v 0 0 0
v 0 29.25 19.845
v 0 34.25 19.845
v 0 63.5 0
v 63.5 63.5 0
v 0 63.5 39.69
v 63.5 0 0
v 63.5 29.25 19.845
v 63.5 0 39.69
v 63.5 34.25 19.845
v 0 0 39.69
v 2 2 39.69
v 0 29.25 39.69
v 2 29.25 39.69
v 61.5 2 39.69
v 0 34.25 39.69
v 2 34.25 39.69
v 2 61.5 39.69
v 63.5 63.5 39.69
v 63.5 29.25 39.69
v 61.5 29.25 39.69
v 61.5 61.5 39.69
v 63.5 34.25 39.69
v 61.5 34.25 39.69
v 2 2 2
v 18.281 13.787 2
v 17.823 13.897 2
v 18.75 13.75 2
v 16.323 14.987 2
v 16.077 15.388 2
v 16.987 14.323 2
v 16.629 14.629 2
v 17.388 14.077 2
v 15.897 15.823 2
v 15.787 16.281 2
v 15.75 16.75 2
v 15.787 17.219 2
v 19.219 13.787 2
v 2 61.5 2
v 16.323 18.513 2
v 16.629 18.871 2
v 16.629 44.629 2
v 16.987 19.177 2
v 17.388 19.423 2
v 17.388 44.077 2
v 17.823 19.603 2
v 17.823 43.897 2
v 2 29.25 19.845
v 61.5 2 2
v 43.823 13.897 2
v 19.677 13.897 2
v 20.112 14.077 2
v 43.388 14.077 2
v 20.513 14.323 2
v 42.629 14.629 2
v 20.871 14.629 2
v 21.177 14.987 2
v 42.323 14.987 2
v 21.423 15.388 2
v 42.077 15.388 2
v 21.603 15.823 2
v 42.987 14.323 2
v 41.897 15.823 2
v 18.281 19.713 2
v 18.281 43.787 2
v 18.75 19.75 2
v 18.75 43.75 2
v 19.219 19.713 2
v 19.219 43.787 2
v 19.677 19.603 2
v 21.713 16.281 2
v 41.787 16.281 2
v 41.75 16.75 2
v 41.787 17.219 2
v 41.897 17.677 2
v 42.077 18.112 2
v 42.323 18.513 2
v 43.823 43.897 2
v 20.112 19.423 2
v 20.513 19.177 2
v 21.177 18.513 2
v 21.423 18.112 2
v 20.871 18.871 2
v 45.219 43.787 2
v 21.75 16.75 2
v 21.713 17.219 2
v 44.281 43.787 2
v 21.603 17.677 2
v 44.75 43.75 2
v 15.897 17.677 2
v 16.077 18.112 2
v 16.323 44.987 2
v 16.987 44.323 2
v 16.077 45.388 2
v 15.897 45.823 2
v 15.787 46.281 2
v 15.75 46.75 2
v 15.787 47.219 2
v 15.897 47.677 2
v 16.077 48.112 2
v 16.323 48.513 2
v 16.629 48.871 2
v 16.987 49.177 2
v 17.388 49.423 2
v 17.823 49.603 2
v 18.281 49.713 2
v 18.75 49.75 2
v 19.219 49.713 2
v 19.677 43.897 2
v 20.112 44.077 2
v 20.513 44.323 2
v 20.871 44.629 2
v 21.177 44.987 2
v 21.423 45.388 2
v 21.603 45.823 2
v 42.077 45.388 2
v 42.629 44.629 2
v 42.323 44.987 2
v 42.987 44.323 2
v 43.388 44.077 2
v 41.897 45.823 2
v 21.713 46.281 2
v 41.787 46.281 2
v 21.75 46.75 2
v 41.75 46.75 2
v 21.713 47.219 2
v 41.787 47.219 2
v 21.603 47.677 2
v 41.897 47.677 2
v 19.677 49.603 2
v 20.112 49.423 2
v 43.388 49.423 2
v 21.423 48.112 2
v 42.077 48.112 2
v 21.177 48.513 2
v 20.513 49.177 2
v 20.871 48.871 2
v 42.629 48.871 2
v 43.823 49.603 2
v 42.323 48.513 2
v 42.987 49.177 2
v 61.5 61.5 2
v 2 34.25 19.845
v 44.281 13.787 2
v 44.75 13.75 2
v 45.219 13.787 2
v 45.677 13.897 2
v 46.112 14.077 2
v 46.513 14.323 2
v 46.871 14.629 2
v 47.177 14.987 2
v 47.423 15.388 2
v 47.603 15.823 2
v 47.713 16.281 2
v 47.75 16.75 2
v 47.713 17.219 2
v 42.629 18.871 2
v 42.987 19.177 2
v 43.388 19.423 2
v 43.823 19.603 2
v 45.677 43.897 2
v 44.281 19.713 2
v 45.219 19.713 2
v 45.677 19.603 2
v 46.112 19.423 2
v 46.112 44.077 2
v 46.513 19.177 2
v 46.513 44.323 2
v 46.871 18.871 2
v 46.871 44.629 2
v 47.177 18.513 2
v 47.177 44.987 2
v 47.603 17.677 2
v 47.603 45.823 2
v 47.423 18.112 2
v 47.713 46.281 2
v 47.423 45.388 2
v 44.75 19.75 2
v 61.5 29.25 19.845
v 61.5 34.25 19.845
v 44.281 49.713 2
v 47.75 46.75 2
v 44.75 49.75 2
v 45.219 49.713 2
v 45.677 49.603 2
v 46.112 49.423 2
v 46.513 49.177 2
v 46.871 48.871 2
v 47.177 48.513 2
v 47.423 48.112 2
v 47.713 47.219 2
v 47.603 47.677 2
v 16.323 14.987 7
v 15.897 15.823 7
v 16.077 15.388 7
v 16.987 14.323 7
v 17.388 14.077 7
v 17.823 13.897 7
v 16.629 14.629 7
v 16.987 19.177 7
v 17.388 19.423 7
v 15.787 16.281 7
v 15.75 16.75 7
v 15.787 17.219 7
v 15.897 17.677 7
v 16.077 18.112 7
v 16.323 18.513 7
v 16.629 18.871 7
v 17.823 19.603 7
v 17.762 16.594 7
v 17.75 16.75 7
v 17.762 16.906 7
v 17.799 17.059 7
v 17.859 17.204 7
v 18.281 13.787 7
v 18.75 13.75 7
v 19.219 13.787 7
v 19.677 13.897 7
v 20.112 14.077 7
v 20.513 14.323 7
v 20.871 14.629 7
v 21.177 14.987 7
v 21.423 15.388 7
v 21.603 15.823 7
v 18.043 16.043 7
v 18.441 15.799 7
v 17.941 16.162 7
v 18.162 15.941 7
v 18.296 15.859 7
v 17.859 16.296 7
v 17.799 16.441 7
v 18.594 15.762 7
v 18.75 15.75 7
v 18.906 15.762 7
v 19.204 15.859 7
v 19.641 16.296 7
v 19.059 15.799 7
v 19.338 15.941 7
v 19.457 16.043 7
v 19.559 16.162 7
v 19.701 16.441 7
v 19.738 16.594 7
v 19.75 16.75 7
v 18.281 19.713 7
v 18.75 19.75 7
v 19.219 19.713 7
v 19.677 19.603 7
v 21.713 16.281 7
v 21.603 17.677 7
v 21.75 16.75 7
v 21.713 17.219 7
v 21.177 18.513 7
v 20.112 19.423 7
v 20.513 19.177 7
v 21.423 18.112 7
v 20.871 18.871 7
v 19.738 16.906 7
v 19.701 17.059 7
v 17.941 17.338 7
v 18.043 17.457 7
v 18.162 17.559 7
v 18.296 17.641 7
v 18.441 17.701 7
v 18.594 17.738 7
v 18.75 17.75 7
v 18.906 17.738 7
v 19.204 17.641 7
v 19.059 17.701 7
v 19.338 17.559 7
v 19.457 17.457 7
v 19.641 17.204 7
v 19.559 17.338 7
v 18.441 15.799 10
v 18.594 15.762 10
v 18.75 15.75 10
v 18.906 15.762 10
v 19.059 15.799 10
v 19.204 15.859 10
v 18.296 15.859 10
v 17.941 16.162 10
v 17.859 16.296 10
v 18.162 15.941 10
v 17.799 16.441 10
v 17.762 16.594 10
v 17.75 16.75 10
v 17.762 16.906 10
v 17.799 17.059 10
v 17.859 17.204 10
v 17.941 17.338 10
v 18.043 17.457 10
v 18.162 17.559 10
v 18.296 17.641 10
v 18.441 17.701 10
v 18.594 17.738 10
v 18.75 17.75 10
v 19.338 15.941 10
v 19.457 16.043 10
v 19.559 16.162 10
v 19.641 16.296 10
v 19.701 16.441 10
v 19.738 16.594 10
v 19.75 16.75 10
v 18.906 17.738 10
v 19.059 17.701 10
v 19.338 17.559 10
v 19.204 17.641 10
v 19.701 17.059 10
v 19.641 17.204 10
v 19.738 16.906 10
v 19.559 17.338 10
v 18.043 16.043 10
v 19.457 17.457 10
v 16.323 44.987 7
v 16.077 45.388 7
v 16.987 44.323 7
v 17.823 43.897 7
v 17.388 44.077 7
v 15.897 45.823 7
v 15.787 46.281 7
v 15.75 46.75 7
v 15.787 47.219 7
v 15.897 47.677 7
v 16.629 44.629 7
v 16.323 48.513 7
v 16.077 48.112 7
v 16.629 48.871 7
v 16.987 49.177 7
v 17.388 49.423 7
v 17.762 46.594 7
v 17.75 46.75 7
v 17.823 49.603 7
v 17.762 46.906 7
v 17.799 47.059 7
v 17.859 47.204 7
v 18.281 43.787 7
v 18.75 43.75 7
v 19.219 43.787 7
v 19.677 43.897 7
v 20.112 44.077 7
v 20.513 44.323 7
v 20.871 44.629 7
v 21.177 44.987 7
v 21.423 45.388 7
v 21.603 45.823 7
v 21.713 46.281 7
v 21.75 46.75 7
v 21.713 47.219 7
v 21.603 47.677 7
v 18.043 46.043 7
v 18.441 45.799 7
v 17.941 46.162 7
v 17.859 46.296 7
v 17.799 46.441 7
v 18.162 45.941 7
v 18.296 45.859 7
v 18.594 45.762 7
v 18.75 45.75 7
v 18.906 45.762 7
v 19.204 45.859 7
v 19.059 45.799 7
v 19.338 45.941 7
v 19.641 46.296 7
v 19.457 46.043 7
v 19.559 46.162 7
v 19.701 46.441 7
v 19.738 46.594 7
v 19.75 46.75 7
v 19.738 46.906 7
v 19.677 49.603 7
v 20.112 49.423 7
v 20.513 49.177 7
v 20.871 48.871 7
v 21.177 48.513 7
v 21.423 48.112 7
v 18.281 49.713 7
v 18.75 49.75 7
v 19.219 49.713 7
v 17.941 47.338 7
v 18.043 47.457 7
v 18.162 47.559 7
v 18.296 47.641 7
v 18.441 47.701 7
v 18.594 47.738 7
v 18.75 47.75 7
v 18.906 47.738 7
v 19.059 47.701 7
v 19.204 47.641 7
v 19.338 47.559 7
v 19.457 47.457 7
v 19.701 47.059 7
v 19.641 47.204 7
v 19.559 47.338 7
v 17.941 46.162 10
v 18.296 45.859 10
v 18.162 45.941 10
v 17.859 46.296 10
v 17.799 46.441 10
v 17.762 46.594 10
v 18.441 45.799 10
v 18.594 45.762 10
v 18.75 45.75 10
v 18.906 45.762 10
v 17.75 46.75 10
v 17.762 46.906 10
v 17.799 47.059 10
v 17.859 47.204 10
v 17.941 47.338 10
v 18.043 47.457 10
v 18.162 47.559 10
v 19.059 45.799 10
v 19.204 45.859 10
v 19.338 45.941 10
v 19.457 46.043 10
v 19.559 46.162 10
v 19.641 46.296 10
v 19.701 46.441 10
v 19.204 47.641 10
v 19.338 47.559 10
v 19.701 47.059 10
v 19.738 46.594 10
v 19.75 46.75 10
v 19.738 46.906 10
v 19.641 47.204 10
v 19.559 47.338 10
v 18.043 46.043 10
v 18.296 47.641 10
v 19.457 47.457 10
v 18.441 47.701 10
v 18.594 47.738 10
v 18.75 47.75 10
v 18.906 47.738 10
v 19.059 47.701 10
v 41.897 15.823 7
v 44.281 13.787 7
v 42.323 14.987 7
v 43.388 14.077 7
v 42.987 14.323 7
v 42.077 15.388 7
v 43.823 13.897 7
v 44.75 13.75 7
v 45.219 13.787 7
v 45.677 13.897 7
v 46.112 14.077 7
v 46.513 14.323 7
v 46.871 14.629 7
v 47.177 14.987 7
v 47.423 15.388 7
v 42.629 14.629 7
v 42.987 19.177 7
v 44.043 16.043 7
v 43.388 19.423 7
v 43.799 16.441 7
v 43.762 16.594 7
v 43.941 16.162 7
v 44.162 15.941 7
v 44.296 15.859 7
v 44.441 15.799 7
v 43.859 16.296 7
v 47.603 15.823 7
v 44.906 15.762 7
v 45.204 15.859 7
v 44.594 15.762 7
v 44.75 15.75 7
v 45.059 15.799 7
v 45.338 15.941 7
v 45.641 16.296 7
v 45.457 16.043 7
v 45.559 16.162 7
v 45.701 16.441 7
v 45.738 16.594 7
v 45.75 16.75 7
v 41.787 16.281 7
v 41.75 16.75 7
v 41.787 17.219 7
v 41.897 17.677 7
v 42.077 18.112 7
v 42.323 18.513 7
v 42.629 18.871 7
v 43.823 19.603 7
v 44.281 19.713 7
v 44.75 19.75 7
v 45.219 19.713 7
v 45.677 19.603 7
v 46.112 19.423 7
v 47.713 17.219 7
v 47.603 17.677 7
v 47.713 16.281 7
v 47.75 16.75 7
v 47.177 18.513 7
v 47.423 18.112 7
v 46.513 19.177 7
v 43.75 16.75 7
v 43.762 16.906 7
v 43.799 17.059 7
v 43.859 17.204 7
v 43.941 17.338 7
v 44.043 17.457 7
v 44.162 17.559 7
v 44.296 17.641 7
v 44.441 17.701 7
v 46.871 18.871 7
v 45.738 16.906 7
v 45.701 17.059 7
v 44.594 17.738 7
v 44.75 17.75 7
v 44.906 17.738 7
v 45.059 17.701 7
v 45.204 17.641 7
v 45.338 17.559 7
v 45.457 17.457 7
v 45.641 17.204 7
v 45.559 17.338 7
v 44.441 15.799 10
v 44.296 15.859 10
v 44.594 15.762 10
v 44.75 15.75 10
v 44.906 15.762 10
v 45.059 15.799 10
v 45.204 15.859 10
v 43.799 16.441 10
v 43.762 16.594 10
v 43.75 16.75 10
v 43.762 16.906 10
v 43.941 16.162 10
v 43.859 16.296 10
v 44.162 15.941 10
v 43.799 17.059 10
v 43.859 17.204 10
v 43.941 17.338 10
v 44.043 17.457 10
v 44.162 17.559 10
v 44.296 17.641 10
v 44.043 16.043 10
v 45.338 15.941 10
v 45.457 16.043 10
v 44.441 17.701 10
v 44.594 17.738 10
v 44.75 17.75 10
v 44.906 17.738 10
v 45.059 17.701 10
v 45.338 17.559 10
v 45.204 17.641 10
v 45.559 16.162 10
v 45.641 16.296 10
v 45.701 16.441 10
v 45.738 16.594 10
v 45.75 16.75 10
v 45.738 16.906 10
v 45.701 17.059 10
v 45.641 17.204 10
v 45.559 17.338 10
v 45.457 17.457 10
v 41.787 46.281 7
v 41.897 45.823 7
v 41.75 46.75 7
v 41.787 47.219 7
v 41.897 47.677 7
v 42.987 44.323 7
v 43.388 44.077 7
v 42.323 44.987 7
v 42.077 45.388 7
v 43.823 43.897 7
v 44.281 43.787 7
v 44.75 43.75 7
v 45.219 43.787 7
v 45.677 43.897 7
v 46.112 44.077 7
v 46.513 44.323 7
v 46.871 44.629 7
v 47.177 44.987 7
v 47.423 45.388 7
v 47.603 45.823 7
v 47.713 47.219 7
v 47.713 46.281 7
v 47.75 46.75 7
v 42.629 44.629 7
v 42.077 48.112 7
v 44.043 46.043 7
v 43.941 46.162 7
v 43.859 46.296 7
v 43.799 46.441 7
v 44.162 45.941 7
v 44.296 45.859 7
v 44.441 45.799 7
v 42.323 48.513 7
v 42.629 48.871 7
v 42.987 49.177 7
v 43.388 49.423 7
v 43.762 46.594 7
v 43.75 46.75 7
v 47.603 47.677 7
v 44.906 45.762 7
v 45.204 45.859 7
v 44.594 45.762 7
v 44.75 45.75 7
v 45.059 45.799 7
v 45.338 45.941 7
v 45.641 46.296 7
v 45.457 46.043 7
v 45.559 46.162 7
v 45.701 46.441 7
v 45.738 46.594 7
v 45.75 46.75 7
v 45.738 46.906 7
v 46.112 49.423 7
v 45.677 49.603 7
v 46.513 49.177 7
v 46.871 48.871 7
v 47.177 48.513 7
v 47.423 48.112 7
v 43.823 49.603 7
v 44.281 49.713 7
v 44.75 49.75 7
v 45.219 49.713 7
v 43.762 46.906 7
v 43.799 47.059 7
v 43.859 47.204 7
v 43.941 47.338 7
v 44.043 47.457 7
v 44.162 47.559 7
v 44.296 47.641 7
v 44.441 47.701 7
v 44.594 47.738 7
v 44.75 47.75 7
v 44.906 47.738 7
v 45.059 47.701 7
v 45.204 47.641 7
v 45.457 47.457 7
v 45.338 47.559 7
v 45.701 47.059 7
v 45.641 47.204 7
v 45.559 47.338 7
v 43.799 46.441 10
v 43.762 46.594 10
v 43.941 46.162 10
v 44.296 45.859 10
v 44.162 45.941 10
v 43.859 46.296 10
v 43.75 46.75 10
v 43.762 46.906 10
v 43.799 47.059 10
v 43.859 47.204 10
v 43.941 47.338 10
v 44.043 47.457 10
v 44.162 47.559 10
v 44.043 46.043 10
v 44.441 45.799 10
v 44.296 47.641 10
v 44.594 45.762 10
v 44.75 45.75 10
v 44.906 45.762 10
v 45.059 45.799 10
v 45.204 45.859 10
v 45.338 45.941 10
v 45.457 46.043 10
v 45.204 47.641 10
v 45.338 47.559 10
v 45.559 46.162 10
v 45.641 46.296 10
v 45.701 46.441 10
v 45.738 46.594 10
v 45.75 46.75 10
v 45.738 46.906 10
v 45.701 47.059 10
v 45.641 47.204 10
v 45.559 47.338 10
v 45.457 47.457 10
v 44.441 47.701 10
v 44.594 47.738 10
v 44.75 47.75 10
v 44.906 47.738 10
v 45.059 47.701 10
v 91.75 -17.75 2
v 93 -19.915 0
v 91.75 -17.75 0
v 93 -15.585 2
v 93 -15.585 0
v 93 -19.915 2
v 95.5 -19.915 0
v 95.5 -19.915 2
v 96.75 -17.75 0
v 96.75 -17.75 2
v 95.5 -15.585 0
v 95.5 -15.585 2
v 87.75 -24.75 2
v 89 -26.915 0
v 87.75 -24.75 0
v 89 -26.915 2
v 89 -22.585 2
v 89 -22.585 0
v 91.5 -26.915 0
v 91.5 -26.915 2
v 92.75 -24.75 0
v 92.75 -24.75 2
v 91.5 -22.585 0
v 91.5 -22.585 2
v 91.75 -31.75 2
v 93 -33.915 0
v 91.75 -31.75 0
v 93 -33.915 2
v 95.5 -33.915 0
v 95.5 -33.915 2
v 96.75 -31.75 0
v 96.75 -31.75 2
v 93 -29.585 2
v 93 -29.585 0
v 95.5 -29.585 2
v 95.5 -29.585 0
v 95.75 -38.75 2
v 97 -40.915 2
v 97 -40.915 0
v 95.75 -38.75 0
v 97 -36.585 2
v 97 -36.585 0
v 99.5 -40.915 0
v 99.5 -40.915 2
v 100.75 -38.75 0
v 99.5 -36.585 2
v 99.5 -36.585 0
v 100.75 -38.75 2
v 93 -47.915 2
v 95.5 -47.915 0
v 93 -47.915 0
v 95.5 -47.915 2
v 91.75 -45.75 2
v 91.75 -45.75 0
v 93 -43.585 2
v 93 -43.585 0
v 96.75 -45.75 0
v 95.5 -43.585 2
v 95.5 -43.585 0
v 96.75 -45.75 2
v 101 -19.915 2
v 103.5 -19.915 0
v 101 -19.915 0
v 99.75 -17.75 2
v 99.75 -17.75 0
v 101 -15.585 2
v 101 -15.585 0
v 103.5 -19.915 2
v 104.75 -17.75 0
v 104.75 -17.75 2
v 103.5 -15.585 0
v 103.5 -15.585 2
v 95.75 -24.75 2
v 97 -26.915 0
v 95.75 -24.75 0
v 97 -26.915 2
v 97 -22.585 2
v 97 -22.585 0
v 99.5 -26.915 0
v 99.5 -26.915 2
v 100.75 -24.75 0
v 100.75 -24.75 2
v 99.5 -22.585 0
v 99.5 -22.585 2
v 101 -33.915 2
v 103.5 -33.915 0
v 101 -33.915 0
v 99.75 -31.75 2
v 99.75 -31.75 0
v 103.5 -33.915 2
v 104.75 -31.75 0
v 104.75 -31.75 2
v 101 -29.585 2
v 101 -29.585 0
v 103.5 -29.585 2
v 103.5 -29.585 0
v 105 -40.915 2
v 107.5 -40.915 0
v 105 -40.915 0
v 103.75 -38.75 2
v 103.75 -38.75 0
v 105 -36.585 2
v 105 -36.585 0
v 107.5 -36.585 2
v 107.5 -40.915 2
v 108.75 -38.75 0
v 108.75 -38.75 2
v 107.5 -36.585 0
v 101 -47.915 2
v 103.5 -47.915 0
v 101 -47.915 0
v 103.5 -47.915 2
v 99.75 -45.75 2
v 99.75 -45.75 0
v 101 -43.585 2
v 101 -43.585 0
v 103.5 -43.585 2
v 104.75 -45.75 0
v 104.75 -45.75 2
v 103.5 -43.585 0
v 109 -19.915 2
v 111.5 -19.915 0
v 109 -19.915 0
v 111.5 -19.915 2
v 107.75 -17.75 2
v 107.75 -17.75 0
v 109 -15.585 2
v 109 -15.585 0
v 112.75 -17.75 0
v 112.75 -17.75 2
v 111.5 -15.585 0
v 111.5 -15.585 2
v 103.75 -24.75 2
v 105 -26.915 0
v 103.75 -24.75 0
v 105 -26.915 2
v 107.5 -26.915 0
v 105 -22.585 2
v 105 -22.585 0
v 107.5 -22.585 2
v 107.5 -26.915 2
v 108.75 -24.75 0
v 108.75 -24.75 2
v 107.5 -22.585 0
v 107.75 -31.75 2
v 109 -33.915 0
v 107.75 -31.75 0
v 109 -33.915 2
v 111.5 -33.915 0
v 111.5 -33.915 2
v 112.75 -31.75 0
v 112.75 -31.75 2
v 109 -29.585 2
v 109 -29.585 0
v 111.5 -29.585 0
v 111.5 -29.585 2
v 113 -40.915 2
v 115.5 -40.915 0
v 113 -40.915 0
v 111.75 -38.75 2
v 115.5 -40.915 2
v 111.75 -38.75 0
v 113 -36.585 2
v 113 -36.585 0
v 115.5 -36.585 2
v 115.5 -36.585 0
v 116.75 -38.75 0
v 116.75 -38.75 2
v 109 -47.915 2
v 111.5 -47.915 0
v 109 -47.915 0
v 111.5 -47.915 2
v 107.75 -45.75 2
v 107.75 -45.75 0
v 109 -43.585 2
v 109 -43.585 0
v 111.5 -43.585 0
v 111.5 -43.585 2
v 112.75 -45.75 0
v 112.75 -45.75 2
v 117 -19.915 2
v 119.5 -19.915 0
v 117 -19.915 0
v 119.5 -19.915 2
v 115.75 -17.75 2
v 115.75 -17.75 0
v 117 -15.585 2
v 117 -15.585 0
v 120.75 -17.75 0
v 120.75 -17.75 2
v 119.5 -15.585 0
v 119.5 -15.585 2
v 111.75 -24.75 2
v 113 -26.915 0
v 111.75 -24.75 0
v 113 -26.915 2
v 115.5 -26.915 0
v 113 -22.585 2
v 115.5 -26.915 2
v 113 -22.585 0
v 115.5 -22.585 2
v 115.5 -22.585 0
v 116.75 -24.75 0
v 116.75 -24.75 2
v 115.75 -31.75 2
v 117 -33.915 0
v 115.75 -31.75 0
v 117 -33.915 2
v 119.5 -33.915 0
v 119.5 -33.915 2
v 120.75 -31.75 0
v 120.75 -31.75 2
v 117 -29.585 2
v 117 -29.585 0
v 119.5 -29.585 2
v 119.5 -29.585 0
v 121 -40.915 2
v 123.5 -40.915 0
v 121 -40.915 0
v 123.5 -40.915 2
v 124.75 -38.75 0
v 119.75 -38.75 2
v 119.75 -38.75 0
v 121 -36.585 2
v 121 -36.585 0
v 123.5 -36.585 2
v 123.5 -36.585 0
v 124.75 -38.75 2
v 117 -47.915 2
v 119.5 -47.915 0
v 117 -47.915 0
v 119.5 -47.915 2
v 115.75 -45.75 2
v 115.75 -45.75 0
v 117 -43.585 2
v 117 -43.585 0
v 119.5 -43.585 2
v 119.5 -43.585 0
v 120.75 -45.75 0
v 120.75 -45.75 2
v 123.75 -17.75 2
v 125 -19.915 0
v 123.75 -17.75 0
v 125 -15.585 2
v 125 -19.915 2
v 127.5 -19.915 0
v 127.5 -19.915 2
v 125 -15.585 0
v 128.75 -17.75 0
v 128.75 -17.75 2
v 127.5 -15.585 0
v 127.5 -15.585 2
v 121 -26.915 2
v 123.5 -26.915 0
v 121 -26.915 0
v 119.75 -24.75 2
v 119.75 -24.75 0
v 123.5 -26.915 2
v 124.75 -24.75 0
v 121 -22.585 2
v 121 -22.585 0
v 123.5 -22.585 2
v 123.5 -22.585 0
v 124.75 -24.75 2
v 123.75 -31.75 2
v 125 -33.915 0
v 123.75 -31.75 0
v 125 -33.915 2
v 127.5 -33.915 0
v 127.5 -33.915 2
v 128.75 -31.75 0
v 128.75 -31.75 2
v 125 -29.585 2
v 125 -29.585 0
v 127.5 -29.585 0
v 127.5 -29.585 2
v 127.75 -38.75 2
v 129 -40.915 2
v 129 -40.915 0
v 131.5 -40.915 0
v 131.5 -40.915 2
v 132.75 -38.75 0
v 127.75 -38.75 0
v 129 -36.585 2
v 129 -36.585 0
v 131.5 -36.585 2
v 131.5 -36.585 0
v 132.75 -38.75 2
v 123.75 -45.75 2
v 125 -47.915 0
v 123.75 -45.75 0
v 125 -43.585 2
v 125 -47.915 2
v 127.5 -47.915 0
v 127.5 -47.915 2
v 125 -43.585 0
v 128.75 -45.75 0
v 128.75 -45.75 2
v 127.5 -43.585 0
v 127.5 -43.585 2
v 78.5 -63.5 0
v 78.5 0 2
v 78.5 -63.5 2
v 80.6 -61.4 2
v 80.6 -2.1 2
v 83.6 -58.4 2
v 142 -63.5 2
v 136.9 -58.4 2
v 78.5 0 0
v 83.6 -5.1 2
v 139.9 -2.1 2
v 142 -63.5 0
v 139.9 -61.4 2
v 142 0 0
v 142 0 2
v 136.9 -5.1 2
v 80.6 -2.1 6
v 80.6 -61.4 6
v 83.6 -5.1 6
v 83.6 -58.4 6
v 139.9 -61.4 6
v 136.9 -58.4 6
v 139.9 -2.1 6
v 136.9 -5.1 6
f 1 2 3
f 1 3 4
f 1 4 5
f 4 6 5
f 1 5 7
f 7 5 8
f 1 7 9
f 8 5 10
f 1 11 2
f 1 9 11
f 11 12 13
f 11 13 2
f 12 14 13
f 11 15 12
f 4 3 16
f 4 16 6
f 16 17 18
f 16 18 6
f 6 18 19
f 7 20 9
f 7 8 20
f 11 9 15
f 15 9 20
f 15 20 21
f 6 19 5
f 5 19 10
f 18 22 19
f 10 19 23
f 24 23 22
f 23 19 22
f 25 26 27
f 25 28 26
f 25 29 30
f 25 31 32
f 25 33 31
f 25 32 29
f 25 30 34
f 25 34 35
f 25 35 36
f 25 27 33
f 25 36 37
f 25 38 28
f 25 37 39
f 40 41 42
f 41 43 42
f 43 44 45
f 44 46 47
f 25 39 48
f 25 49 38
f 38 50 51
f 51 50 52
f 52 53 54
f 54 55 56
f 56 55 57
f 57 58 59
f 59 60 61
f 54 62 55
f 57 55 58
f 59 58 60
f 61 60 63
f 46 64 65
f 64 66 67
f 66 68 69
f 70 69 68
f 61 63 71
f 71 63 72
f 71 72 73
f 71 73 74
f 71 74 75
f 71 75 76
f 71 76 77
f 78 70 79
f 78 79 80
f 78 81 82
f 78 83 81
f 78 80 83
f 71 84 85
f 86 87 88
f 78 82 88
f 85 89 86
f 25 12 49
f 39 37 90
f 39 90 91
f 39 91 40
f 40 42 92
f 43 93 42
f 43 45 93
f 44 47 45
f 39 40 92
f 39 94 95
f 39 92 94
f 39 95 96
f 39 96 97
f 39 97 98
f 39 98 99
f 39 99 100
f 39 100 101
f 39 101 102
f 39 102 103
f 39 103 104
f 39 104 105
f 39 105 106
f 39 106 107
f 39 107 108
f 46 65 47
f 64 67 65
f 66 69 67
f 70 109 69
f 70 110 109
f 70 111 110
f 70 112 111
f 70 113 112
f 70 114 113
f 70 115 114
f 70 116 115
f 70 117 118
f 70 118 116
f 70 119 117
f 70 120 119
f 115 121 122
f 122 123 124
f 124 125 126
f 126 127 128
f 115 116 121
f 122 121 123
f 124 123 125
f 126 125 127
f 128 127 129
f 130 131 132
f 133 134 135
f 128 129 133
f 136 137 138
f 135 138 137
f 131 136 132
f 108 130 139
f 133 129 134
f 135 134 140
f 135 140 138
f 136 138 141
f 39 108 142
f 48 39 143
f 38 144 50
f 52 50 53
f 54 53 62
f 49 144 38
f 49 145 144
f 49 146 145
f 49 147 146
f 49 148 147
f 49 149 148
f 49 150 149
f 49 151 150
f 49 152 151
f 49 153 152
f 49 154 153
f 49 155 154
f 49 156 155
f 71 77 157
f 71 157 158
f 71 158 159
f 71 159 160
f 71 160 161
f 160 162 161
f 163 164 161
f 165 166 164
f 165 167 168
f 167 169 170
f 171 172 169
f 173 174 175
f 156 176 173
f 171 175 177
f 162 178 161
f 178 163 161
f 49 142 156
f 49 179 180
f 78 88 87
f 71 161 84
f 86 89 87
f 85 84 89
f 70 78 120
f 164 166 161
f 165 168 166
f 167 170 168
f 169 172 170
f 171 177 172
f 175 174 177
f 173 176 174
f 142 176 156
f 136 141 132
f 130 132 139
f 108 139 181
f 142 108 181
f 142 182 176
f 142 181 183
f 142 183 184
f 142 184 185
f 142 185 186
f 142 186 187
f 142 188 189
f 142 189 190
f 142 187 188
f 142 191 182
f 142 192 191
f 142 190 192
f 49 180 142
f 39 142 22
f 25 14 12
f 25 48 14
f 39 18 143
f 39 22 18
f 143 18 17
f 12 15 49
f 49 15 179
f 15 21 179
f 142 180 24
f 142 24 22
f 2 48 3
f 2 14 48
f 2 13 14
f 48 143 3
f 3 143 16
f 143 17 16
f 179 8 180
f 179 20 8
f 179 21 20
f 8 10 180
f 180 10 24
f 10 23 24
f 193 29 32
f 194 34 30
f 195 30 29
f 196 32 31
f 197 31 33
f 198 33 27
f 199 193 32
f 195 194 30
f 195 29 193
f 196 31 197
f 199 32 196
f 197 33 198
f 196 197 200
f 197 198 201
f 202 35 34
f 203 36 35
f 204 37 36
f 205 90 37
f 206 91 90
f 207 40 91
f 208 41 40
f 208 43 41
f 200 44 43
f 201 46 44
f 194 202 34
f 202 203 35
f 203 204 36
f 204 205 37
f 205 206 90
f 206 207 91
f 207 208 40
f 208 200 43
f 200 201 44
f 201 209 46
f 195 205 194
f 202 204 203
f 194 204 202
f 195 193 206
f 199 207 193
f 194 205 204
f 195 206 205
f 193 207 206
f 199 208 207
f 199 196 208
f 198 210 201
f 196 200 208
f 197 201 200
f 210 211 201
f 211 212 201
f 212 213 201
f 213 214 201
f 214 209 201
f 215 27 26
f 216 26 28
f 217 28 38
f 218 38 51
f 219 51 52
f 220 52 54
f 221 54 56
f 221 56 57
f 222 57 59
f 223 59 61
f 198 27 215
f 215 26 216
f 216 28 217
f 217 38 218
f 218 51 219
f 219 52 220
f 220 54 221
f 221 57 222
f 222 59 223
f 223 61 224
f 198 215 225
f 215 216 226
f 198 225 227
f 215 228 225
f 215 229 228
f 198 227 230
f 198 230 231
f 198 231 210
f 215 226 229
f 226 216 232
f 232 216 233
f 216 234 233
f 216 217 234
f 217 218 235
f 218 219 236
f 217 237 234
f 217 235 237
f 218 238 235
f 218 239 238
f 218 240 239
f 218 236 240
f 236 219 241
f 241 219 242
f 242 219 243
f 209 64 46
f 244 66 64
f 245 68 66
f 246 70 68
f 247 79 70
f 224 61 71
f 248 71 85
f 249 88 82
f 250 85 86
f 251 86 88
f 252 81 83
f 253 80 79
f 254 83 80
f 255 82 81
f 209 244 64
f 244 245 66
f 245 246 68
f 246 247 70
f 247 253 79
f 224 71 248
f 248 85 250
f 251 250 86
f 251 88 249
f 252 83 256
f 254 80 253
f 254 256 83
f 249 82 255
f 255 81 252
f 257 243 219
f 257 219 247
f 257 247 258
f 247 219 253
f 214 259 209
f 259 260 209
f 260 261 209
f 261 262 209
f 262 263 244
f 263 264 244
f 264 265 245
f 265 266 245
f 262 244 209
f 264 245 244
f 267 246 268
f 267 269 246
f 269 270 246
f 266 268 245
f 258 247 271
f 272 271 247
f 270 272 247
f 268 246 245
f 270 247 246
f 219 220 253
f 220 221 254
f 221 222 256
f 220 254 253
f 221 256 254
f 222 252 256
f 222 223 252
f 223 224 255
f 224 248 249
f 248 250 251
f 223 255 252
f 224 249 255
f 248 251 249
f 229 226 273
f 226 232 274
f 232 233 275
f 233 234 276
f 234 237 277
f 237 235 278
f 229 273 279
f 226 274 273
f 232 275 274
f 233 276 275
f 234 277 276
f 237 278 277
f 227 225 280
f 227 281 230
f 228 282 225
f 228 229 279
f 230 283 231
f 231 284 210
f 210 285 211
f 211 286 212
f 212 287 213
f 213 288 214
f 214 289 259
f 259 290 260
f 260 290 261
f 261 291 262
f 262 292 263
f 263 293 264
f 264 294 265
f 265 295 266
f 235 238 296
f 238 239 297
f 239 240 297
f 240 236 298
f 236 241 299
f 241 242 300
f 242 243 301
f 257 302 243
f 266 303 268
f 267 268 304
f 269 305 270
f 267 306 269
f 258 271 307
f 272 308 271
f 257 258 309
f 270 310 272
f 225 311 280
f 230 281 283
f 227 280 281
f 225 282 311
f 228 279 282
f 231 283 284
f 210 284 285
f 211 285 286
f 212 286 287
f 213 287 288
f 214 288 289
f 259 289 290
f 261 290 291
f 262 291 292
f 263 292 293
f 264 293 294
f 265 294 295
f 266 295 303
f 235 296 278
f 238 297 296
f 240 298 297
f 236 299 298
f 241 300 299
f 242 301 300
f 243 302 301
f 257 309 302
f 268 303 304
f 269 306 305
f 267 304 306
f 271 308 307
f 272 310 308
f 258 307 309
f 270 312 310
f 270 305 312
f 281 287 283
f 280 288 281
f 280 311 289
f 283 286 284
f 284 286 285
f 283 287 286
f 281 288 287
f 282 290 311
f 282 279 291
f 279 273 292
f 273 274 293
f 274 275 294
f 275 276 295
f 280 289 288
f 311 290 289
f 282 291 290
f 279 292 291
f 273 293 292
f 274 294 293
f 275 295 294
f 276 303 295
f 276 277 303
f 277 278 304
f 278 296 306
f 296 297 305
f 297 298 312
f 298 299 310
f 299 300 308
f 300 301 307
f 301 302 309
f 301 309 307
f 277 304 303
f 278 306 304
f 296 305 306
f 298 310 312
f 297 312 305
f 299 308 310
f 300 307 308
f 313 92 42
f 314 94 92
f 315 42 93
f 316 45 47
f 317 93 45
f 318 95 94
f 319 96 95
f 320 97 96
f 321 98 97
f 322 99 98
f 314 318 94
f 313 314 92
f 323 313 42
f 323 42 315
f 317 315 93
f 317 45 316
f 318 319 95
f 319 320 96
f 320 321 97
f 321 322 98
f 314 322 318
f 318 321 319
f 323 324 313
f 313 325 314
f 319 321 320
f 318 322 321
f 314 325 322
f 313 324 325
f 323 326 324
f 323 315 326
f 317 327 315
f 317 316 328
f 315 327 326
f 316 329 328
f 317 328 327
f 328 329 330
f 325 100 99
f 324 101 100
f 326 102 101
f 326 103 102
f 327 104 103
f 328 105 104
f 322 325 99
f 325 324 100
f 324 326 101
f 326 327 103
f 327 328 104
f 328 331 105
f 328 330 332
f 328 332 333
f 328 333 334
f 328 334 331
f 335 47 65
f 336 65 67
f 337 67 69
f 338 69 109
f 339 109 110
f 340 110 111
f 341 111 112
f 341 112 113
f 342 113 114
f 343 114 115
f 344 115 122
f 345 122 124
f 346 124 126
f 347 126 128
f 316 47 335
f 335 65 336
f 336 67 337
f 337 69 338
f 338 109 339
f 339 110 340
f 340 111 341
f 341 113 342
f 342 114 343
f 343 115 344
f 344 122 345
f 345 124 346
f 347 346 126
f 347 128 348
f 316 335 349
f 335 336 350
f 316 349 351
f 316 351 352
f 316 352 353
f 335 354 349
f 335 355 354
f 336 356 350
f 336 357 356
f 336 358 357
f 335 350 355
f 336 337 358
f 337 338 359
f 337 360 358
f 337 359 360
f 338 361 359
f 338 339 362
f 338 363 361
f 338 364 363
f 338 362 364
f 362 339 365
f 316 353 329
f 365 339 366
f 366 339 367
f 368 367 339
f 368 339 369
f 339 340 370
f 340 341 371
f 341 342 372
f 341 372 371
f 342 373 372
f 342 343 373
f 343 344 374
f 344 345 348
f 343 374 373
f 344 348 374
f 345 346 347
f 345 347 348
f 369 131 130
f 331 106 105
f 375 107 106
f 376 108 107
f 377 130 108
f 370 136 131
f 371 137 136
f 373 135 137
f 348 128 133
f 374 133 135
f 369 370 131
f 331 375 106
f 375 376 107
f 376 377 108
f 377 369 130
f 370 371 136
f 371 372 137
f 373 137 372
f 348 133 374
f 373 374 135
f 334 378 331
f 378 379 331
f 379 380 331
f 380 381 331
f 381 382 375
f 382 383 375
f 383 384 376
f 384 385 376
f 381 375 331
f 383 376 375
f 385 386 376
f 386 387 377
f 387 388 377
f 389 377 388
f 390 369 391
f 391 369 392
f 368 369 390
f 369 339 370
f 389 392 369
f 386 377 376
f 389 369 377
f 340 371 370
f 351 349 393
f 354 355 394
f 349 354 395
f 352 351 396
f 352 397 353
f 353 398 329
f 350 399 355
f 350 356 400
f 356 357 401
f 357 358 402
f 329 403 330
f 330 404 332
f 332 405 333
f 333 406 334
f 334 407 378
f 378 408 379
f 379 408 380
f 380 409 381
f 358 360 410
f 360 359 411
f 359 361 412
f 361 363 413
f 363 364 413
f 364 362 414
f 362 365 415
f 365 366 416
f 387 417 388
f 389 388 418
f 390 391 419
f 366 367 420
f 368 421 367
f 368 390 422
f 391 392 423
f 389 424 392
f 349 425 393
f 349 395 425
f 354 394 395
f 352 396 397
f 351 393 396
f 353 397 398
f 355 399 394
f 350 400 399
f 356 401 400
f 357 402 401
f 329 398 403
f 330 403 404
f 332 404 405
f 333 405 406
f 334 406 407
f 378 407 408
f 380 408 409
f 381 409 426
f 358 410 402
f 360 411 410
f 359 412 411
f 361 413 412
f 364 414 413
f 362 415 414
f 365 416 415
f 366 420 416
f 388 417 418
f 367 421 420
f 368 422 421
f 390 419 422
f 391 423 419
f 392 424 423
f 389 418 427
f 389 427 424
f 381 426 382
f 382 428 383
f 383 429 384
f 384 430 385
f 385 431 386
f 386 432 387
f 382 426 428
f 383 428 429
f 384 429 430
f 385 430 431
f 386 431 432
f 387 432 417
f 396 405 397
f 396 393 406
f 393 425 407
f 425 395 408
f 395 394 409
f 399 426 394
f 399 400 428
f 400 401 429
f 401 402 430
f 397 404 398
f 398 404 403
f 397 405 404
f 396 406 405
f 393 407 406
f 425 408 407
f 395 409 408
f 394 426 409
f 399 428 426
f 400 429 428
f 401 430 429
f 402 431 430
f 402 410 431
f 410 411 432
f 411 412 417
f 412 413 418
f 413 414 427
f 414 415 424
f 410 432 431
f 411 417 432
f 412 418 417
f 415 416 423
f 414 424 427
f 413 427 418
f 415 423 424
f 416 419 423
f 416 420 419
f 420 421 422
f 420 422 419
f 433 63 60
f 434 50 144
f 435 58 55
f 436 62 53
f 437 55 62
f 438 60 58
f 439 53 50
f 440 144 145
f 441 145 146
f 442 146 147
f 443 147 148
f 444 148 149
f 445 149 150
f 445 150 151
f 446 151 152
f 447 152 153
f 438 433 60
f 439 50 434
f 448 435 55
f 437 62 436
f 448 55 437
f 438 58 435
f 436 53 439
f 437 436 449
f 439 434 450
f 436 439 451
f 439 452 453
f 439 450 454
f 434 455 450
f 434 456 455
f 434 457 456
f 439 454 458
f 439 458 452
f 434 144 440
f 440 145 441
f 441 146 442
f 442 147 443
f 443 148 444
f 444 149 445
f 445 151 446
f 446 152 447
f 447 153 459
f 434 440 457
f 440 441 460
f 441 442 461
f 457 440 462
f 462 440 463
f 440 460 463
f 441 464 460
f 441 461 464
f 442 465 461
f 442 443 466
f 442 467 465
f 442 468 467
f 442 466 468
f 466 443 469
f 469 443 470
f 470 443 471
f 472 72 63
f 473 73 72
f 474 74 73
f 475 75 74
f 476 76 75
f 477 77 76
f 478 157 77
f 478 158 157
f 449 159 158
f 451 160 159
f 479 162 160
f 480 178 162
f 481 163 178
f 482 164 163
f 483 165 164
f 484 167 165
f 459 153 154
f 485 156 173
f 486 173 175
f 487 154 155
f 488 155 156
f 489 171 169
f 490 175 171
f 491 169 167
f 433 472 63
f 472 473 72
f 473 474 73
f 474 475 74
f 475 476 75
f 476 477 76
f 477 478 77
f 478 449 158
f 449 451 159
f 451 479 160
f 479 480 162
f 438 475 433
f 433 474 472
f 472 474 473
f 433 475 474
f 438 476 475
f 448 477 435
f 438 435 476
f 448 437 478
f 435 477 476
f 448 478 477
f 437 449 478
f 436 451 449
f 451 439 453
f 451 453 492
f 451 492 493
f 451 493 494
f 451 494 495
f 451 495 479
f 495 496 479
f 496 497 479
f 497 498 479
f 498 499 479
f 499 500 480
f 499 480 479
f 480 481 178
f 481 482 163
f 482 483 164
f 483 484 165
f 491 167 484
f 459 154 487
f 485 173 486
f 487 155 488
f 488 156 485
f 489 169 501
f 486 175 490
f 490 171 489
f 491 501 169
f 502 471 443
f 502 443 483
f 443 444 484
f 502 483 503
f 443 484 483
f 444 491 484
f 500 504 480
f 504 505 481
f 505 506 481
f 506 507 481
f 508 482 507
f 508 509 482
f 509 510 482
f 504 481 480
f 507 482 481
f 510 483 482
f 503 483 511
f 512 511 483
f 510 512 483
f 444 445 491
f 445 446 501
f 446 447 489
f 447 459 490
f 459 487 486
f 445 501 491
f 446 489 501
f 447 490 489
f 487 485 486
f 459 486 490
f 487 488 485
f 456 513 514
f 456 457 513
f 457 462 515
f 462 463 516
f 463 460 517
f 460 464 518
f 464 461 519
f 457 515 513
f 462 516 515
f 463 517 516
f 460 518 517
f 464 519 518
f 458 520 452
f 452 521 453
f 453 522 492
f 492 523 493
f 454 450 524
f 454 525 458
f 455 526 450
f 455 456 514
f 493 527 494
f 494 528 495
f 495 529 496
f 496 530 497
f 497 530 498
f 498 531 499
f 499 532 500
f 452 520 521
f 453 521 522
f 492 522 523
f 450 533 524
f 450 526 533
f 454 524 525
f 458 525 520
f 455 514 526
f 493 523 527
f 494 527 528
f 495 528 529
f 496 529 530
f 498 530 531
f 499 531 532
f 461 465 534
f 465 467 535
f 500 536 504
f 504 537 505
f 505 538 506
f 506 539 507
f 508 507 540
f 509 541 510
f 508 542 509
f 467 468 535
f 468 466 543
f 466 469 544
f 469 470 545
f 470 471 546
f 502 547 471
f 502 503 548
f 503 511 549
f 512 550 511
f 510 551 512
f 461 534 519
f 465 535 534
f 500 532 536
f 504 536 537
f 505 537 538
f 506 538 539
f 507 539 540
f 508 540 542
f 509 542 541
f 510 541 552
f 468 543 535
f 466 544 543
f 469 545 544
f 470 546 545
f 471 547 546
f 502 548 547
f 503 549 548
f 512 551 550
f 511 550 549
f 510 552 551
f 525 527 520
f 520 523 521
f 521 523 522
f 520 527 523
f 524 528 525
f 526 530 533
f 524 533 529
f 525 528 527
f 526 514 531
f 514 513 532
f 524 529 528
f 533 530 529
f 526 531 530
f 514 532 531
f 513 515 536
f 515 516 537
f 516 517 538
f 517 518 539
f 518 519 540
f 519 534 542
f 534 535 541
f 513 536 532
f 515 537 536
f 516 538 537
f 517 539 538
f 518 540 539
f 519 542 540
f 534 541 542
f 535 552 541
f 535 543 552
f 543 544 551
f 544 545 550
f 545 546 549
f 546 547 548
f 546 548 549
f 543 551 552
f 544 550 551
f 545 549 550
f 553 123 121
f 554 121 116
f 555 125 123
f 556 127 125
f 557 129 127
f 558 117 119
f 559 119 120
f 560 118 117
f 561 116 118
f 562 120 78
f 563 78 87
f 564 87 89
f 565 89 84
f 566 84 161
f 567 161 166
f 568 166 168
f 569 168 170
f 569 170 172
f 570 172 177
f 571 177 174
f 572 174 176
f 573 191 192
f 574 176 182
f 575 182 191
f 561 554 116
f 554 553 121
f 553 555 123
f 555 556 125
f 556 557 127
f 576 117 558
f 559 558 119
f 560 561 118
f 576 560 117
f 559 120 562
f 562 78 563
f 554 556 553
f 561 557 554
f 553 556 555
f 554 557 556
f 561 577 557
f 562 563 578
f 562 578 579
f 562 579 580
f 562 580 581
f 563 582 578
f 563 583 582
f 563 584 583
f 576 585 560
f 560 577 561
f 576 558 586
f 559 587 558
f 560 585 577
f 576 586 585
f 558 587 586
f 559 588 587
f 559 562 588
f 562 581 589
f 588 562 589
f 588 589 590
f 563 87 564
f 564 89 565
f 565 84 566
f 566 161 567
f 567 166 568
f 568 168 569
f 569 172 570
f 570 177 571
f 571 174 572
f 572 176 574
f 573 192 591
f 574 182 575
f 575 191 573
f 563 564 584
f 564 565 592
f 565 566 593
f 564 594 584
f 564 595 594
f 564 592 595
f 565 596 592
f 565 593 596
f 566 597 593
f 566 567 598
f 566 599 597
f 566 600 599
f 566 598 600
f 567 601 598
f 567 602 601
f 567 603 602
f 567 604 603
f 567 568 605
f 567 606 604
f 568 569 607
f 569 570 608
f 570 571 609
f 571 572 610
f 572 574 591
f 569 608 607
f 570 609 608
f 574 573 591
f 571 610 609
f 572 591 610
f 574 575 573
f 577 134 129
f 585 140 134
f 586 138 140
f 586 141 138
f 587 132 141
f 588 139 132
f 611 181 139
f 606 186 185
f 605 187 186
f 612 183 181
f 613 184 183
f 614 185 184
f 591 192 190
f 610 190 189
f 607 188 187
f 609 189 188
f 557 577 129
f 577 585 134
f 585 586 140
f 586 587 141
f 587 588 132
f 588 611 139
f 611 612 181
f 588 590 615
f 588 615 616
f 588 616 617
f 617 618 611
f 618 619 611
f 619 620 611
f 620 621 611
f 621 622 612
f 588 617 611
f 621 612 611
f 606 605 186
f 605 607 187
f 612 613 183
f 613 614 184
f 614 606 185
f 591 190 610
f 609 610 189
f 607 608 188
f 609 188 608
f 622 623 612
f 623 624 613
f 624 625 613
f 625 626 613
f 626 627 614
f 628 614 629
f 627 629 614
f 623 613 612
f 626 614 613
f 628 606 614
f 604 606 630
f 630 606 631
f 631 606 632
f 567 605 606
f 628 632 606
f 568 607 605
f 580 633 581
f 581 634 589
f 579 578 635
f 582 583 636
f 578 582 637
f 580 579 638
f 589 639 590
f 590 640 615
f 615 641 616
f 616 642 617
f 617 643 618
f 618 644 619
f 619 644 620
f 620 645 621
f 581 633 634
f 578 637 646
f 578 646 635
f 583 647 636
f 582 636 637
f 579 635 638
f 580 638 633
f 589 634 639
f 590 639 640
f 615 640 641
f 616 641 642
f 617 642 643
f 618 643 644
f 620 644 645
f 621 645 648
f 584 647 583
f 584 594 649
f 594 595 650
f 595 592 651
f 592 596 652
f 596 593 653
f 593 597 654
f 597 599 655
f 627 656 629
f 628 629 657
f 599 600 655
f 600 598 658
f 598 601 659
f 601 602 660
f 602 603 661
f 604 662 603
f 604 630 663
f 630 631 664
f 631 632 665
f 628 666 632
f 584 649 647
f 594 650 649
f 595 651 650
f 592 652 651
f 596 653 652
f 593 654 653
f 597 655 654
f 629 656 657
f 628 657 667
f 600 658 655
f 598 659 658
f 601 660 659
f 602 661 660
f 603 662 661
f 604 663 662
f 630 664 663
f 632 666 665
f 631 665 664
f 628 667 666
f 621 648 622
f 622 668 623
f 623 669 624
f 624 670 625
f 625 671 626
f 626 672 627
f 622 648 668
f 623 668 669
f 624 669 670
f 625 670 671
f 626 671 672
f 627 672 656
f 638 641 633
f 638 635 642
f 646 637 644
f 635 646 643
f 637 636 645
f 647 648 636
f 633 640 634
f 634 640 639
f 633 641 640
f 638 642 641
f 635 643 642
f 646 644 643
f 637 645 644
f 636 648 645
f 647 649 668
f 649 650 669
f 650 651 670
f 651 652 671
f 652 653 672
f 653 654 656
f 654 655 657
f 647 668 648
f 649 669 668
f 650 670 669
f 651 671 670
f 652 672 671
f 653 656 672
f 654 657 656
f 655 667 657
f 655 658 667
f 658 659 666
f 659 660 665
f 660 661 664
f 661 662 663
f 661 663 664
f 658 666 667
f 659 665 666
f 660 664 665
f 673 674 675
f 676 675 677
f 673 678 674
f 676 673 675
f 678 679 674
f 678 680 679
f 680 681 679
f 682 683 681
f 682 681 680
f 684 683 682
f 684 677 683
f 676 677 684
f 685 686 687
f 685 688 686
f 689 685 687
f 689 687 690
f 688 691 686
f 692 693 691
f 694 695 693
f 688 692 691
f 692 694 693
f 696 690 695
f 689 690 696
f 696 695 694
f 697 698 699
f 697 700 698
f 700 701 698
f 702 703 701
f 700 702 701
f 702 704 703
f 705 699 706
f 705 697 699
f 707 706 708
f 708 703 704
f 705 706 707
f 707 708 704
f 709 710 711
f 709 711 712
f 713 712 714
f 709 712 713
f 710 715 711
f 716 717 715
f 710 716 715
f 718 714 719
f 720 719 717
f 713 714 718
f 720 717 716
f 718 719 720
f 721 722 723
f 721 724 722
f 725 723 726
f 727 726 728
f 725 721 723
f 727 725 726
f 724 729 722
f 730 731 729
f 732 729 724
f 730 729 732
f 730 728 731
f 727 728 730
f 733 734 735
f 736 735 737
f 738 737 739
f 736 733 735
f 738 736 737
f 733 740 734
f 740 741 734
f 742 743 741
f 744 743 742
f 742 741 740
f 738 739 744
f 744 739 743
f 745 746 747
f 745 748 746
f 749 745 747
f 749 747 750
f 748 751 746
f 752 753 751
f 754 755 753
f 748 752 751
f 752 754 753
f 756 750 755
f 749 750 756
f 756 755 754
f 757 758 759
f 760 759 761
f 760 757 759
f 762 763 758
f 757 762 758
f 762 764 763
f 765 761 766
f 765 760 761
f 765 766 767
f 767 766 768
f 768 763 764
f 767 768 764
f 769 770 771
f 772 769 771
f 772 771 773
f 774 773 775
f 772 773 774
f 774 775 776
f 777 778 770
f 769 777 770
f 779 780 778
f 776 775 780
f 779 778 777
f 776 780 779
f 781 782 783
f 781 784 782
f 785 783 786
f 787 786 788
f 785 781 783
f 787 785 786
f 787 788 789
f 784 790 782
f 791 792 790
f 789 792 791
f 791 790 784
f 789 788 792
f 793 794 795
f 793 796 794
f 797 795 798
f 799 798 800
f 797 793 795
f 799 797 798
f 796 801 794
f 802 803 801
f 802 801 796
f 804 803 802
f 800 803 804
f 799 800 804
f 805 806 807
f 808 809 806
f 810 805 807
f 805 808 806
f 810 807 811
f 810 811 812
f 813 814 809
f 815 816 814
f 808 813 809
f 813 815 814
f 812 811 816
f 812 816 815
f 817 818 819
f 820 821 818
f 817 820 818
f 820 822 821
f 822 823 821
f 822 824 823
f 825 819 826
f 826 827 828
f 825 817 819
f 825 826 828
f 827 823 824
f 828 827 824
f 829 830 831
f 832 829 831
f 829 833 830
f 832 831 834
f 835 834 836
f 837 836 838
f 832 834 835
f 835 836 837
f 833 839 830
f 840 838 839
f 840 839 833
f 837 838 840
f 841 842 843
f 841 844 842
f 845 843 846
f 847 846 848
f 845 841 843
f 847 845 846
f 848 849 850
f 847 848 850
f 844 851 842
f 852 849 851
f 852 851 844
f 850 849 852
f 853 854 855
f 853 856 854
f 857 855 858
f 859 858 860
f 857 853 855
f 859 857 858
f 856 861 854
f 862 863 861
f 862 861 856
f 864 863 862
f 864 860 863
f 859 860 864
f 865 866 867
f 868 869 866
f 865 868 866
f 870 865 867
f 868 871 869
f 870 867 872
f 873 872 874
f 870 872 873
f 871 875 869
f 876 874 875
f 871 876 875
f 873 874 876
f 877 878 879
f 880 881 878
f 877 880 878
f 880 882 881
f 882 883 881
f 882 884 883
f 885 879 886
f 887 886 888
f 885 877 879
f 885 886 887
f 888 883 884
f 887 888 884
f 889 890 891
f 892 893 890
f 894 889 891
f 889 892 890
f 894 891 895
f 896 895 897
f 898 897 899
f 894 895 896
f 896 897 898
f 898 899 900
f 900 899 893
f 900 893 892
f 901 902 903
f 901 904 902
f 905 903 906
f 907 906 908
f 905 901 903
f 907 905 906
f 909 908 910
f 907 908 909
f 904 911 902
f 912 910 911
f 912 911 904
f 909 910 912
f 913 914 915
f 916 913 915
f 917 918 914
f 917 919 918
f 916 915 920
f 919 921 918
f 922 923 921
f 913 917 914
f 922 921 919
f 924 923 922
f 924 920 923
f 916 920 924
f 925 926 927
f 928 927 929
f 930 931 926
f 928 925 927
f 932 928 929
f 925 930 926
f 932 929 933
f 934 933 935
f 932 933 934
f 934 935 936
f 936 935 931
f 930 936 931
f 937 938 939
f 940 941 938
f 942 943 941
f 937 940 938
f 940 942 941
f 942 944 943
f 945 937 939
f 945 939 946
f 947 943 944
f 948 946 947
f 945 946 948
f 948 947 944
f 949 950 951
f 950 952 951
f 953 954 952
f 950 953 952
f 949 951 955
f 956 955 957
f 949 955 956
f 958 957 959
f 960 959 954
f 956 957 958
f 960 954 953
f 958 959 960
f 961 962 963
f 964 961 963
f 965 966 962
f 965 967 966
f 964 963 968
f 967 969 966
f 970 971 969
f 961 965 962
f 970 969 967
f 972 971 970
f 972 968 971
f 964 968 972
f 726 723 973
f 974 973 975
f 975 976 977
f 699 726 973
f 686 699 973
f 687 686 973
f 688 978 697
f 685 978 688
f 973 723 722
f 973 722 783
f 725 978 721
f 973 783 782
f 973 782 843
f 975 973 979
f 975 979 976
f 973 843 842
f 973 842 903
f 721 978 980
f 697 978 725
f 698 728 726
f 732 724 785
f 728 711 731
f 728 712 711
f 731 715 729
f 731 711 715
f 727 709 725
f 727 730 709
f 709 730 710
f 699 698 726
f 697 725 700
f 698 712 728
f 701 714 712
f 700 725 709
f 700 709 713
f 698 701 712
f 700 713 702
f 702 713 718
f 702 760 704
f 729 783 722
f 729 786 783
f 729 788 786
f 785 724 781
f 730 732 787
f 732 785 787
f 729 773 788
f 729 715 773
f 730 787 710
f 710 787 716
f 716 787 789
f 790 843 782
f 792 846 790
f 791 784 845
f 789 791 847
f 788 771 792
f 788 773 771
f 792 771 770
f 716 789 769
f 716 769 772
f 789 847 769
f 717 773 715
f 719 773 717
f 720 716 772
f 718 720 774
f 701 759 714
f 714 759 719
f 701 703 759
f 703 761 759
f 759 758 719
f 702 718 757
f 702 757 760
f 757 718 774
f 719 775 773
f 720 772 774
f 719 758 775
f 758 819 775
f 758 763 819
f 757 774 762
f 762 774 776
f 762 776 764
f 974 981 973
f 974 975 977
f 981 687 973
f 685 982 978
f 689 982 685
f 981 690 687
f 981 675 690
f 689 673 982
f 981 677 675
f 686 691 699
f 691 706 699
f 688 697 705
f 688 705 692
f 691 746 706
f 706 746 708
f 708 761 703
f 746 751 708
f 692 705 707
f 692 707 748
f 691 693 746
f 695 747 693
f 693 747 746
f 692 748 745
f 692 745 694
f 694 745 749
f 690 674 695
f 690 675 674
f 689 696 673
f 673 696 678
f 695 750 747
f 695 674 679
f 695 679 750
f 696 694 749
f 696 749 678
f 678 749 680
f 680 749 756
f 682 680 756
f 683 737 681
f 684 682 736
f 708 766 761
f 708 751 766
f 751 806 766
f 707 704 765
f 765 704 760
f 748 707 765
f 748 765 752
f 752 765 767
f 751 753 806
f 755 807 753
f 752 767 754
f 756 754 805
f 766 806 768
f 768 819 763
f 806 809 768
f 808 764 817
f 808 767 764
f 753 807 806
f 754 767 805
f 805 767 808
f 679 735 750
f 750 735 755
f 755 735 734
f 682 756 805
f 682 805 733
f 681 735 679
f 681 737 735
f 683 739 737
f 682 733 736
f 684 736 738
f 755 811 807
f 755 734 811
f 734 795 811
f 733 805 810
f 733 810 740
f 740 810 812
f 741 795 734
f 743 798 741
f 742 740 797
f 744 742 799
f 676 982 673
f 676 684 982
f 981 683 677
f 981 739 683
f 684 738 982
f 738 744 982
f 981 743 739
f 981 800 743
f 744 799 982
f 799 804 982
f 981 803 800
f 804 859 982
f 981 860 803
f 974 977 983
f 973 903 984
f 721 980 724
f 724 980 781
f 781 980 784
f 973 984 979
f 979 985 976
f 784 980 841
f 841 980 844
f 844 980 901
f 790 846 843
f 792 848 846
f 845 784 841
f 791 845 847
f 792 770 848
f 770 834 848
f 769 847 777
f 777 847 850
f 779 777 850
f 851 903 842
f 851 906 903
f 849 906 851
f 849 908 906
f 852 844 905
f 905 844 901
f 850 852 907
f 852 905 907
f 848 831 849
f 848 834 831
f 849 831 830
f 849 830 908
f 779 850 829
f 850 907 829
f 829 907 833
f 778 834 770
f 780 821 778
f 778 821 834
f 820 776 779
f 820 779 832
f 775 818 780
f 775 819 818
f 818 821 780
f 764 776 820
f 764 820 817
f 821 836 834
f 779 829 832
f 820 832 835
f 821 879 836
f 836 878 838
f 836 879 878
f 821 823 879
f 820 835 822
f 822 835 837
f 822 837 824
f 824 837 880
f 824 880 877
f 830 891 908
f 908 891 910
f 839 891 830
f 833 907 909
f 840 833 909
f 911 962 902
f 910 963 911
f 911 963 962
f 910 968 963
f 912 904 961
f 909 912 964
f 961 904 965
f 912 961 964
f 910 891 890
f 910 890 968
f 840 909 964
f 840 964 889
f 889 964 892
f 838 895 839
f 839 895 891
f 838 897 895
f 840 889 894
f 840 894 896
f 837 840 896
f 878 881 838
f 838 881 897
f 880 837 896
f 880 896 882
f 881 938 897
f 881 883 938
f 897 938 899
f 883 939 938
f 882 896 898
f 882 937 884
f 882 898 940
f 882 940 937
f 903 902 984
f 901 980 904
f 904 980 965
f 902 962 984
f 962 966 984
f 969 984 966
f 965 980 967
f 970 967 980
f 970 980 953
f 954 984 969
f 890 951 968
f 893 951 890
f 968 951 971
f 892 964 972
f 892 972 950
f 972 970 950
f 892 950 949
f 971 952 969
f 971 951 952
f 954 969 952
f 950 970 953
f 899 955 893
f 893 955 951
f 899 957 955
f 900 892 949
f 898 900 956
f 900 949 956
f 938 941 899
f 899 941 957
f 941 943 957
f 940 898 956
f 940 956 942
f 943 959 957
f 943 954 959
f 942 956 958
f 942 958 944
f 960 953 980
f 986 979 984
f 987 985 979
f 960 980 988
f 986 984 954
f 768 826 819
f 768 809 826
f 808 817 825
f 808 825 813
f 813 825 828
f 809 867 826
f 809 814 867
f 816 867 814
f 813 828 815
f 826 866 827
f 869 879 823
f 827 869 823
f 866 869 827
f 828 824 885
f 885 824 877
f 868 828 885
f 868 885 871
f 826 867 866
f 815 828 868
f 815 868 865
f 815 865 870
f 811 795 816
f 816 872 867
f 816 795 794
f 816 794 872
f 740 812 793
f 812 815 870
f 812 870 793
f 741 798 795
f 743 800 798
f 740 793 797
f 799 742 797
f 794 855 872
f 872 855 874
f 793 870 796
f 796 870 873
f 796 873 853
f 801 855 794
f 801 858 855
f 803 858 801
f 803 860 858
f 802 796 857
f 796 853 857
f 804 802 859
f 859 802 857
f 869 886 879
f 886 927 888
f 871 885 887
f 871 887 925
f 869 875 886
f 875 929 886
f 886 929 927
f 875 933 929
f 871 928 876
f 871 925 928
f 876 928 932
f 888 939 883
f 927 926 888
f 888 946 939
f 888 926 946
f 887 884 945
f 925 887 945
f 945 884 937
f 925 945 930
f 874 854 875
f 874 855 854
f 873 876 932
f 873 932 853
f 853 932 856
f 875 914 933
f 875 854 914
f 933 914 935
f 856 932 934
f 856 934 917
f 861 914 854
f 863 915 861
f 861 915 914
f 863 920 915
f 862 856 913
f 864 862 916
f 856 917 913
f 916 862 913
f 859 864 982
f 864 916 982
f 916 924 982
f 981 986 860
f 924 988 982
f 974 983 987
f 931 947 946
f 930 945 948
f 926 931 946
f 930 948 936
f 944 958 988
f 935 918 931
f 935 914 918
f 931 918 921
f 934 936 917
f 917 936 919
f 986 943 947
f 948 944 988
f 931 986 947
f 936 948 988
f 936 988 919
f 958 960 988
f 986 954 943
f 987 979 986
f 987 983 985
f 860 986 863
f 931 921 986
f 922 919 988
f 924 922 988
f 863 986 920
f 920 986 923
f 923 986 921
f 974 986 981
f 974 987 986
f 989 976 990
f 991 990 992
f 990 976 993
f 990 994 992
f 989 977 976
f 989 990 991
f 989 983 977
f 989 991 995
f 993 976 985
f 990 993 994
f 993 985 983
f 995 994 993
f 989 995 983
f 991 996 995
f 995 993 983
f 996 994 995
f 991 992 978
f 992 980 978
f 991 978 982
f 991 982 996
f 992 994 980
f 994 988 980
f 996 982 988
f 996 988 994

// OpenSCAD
// Custom Enclosure for ULN2003 Stepper Motor Driver Board
// Updated: Height raised to 1 9/16", snugger lid layers, and customized pin standoffs.

$fn = 40; // Circle smoothness

// --- PARAMETERS ---
box_size = 63.5;       // 2.5 inches square
box_height = 39.69;    // 1 9/16 inches overall height
wall_thick = 2.0;      // Outer shell wall thickness

// Board Mounting Dimensions (Calculated from ruler photos: ~26mm x 30mm)
pcb_hole_w = 26.0;     // Center-to-center hole spacing (Width)
pcb_hole_l = 30.0;     // Center-to-center hole spacing (Length)

standoff_h = 5.0;      // Height of main support base
standoff_dia = 6.0;    // Diameter of standoff base pillars
pin_h = 3.0;           // Height of alignment pin extending above standoff
pin_dia = 2.0;         // Diameter of alignment pin (fits standard PCB holes)

// Slits for wires (Halfway down opposite walls)
slit_w = 5.0;          // Width of wire drop slots
slit_depth = box_height / 2; 


// --- PRINT BED ARRANGEMENT (Z = 0) ---

// 1. Main Enclosure Base
translate([0, 0, 0]) {
    main_enclosure_base();
}

// 2. Enclosure Lid (Placed side-by-side with a 15mm layout gap)
translate([box_size + 15, 0, wall_thick]) {
    rotate([180, 0, 0]) {
        enclosure_lid();
    }
}


// --- MODULES ---

module main_enclosure_base() {
    difference() {
        // Outer Solid Box
        cube([box_size, box_size, box_height]);
        
        // Inner Hollow Space
        translate([wall_thick, wall_thick, wall_thick])
            cube([box_size - (wall_thick * 2), box_size - (wall_thick * 2), box_height]);
        
        // Wire Slit 1 (Left wall, centered)
        translate([-0.1, box_size / 2 - slit_w / 2, box_height - slit_depth])
            cube([wall_thick + 0.2, slit_w, slit_depth + 0.1]);
            
        // Wire Slit 2 (Right wall, centered)
        translate([box_size - wall_thick - 0.1, box_size / 2 - slit_w / 2, box_height - slit_depth])
            cube([wall_thick + 0.2, slit_w, slit_depth + 0.1]);
    }
    
    // Four Centered PCB Pin Standoffs
    translate([box_size / 2, box_size / 2, wall_thick]) {
        for (x = [-pcb_hole_w / 2, pcb_hole_w / 2]) {
            for (y = [-pcb_hole_l / 2, pcb_hole_l / 2]) {
                translate([x, y, 0]) {
                    // Standoff Support Base
                    cylinder(h = standoff_h, d = standoff_dia);
                    // Alignment Pin on top
                    translate([0, 0, standoff_h])
                        cylinder(h = pin_h, d = pin_dia);
                }
            }
        }
    }
}

module enclosure_lid() {
    lid_lip_height = 4.0; // Deeper friction path for a tight fit
    lid_clearance = 0.1;  // Reduced clearance for a tighter snap fit
    lip_thick = 3.0;      // Thicker wall layers on the inner lip profile
    
    // Main Lid Flat Plate
    difference() {
        cube([box_size, box_size, wall_thick]);
        
        // Ventilation Array (Hexagonal patterns centered on the top)
        translate([box_size / 2, box_size / 2, -0.1]) {
            for (xi = [-2:2]) {
                for (yi = [-2:2]) {
                    translate([xi * 8 + (yi % 2 * 4), yi * 7, 0])
                        cylinder(h = wall_thick + 0.2, r = 2.5, $fn = 6);
                }
            }
        }
    }
    
    // Reinforced Inner Alignment Lip 
    difference() {
        translate([wall_thick + lid_clearance, wall_thick + lid_clearance, -lid_lip_height])
            cube([box_size - (wall_thick * 2) - (lid_clearance * 2), box_size - (wall_thick * 2) - (lid_clearance * 2), lid_lip_height]);
        
        // Inner clearance cutout leaving a strong, thick tracking lip perimeter
        translate([wall_thick + lid_clearance + lip_thick, wall_thick + lid_clearance + lip_thick, -lid_lip_height - 0.1])
            cube([box_size - (wall_thick * 2) - (lid_clearance * 2) - (lip_thick * 2), box_size - (wall_thick * 2) - (lid_clearance * 2) - (lip_thick * 2), lid_lip_height + 0.2]);
    }
}
